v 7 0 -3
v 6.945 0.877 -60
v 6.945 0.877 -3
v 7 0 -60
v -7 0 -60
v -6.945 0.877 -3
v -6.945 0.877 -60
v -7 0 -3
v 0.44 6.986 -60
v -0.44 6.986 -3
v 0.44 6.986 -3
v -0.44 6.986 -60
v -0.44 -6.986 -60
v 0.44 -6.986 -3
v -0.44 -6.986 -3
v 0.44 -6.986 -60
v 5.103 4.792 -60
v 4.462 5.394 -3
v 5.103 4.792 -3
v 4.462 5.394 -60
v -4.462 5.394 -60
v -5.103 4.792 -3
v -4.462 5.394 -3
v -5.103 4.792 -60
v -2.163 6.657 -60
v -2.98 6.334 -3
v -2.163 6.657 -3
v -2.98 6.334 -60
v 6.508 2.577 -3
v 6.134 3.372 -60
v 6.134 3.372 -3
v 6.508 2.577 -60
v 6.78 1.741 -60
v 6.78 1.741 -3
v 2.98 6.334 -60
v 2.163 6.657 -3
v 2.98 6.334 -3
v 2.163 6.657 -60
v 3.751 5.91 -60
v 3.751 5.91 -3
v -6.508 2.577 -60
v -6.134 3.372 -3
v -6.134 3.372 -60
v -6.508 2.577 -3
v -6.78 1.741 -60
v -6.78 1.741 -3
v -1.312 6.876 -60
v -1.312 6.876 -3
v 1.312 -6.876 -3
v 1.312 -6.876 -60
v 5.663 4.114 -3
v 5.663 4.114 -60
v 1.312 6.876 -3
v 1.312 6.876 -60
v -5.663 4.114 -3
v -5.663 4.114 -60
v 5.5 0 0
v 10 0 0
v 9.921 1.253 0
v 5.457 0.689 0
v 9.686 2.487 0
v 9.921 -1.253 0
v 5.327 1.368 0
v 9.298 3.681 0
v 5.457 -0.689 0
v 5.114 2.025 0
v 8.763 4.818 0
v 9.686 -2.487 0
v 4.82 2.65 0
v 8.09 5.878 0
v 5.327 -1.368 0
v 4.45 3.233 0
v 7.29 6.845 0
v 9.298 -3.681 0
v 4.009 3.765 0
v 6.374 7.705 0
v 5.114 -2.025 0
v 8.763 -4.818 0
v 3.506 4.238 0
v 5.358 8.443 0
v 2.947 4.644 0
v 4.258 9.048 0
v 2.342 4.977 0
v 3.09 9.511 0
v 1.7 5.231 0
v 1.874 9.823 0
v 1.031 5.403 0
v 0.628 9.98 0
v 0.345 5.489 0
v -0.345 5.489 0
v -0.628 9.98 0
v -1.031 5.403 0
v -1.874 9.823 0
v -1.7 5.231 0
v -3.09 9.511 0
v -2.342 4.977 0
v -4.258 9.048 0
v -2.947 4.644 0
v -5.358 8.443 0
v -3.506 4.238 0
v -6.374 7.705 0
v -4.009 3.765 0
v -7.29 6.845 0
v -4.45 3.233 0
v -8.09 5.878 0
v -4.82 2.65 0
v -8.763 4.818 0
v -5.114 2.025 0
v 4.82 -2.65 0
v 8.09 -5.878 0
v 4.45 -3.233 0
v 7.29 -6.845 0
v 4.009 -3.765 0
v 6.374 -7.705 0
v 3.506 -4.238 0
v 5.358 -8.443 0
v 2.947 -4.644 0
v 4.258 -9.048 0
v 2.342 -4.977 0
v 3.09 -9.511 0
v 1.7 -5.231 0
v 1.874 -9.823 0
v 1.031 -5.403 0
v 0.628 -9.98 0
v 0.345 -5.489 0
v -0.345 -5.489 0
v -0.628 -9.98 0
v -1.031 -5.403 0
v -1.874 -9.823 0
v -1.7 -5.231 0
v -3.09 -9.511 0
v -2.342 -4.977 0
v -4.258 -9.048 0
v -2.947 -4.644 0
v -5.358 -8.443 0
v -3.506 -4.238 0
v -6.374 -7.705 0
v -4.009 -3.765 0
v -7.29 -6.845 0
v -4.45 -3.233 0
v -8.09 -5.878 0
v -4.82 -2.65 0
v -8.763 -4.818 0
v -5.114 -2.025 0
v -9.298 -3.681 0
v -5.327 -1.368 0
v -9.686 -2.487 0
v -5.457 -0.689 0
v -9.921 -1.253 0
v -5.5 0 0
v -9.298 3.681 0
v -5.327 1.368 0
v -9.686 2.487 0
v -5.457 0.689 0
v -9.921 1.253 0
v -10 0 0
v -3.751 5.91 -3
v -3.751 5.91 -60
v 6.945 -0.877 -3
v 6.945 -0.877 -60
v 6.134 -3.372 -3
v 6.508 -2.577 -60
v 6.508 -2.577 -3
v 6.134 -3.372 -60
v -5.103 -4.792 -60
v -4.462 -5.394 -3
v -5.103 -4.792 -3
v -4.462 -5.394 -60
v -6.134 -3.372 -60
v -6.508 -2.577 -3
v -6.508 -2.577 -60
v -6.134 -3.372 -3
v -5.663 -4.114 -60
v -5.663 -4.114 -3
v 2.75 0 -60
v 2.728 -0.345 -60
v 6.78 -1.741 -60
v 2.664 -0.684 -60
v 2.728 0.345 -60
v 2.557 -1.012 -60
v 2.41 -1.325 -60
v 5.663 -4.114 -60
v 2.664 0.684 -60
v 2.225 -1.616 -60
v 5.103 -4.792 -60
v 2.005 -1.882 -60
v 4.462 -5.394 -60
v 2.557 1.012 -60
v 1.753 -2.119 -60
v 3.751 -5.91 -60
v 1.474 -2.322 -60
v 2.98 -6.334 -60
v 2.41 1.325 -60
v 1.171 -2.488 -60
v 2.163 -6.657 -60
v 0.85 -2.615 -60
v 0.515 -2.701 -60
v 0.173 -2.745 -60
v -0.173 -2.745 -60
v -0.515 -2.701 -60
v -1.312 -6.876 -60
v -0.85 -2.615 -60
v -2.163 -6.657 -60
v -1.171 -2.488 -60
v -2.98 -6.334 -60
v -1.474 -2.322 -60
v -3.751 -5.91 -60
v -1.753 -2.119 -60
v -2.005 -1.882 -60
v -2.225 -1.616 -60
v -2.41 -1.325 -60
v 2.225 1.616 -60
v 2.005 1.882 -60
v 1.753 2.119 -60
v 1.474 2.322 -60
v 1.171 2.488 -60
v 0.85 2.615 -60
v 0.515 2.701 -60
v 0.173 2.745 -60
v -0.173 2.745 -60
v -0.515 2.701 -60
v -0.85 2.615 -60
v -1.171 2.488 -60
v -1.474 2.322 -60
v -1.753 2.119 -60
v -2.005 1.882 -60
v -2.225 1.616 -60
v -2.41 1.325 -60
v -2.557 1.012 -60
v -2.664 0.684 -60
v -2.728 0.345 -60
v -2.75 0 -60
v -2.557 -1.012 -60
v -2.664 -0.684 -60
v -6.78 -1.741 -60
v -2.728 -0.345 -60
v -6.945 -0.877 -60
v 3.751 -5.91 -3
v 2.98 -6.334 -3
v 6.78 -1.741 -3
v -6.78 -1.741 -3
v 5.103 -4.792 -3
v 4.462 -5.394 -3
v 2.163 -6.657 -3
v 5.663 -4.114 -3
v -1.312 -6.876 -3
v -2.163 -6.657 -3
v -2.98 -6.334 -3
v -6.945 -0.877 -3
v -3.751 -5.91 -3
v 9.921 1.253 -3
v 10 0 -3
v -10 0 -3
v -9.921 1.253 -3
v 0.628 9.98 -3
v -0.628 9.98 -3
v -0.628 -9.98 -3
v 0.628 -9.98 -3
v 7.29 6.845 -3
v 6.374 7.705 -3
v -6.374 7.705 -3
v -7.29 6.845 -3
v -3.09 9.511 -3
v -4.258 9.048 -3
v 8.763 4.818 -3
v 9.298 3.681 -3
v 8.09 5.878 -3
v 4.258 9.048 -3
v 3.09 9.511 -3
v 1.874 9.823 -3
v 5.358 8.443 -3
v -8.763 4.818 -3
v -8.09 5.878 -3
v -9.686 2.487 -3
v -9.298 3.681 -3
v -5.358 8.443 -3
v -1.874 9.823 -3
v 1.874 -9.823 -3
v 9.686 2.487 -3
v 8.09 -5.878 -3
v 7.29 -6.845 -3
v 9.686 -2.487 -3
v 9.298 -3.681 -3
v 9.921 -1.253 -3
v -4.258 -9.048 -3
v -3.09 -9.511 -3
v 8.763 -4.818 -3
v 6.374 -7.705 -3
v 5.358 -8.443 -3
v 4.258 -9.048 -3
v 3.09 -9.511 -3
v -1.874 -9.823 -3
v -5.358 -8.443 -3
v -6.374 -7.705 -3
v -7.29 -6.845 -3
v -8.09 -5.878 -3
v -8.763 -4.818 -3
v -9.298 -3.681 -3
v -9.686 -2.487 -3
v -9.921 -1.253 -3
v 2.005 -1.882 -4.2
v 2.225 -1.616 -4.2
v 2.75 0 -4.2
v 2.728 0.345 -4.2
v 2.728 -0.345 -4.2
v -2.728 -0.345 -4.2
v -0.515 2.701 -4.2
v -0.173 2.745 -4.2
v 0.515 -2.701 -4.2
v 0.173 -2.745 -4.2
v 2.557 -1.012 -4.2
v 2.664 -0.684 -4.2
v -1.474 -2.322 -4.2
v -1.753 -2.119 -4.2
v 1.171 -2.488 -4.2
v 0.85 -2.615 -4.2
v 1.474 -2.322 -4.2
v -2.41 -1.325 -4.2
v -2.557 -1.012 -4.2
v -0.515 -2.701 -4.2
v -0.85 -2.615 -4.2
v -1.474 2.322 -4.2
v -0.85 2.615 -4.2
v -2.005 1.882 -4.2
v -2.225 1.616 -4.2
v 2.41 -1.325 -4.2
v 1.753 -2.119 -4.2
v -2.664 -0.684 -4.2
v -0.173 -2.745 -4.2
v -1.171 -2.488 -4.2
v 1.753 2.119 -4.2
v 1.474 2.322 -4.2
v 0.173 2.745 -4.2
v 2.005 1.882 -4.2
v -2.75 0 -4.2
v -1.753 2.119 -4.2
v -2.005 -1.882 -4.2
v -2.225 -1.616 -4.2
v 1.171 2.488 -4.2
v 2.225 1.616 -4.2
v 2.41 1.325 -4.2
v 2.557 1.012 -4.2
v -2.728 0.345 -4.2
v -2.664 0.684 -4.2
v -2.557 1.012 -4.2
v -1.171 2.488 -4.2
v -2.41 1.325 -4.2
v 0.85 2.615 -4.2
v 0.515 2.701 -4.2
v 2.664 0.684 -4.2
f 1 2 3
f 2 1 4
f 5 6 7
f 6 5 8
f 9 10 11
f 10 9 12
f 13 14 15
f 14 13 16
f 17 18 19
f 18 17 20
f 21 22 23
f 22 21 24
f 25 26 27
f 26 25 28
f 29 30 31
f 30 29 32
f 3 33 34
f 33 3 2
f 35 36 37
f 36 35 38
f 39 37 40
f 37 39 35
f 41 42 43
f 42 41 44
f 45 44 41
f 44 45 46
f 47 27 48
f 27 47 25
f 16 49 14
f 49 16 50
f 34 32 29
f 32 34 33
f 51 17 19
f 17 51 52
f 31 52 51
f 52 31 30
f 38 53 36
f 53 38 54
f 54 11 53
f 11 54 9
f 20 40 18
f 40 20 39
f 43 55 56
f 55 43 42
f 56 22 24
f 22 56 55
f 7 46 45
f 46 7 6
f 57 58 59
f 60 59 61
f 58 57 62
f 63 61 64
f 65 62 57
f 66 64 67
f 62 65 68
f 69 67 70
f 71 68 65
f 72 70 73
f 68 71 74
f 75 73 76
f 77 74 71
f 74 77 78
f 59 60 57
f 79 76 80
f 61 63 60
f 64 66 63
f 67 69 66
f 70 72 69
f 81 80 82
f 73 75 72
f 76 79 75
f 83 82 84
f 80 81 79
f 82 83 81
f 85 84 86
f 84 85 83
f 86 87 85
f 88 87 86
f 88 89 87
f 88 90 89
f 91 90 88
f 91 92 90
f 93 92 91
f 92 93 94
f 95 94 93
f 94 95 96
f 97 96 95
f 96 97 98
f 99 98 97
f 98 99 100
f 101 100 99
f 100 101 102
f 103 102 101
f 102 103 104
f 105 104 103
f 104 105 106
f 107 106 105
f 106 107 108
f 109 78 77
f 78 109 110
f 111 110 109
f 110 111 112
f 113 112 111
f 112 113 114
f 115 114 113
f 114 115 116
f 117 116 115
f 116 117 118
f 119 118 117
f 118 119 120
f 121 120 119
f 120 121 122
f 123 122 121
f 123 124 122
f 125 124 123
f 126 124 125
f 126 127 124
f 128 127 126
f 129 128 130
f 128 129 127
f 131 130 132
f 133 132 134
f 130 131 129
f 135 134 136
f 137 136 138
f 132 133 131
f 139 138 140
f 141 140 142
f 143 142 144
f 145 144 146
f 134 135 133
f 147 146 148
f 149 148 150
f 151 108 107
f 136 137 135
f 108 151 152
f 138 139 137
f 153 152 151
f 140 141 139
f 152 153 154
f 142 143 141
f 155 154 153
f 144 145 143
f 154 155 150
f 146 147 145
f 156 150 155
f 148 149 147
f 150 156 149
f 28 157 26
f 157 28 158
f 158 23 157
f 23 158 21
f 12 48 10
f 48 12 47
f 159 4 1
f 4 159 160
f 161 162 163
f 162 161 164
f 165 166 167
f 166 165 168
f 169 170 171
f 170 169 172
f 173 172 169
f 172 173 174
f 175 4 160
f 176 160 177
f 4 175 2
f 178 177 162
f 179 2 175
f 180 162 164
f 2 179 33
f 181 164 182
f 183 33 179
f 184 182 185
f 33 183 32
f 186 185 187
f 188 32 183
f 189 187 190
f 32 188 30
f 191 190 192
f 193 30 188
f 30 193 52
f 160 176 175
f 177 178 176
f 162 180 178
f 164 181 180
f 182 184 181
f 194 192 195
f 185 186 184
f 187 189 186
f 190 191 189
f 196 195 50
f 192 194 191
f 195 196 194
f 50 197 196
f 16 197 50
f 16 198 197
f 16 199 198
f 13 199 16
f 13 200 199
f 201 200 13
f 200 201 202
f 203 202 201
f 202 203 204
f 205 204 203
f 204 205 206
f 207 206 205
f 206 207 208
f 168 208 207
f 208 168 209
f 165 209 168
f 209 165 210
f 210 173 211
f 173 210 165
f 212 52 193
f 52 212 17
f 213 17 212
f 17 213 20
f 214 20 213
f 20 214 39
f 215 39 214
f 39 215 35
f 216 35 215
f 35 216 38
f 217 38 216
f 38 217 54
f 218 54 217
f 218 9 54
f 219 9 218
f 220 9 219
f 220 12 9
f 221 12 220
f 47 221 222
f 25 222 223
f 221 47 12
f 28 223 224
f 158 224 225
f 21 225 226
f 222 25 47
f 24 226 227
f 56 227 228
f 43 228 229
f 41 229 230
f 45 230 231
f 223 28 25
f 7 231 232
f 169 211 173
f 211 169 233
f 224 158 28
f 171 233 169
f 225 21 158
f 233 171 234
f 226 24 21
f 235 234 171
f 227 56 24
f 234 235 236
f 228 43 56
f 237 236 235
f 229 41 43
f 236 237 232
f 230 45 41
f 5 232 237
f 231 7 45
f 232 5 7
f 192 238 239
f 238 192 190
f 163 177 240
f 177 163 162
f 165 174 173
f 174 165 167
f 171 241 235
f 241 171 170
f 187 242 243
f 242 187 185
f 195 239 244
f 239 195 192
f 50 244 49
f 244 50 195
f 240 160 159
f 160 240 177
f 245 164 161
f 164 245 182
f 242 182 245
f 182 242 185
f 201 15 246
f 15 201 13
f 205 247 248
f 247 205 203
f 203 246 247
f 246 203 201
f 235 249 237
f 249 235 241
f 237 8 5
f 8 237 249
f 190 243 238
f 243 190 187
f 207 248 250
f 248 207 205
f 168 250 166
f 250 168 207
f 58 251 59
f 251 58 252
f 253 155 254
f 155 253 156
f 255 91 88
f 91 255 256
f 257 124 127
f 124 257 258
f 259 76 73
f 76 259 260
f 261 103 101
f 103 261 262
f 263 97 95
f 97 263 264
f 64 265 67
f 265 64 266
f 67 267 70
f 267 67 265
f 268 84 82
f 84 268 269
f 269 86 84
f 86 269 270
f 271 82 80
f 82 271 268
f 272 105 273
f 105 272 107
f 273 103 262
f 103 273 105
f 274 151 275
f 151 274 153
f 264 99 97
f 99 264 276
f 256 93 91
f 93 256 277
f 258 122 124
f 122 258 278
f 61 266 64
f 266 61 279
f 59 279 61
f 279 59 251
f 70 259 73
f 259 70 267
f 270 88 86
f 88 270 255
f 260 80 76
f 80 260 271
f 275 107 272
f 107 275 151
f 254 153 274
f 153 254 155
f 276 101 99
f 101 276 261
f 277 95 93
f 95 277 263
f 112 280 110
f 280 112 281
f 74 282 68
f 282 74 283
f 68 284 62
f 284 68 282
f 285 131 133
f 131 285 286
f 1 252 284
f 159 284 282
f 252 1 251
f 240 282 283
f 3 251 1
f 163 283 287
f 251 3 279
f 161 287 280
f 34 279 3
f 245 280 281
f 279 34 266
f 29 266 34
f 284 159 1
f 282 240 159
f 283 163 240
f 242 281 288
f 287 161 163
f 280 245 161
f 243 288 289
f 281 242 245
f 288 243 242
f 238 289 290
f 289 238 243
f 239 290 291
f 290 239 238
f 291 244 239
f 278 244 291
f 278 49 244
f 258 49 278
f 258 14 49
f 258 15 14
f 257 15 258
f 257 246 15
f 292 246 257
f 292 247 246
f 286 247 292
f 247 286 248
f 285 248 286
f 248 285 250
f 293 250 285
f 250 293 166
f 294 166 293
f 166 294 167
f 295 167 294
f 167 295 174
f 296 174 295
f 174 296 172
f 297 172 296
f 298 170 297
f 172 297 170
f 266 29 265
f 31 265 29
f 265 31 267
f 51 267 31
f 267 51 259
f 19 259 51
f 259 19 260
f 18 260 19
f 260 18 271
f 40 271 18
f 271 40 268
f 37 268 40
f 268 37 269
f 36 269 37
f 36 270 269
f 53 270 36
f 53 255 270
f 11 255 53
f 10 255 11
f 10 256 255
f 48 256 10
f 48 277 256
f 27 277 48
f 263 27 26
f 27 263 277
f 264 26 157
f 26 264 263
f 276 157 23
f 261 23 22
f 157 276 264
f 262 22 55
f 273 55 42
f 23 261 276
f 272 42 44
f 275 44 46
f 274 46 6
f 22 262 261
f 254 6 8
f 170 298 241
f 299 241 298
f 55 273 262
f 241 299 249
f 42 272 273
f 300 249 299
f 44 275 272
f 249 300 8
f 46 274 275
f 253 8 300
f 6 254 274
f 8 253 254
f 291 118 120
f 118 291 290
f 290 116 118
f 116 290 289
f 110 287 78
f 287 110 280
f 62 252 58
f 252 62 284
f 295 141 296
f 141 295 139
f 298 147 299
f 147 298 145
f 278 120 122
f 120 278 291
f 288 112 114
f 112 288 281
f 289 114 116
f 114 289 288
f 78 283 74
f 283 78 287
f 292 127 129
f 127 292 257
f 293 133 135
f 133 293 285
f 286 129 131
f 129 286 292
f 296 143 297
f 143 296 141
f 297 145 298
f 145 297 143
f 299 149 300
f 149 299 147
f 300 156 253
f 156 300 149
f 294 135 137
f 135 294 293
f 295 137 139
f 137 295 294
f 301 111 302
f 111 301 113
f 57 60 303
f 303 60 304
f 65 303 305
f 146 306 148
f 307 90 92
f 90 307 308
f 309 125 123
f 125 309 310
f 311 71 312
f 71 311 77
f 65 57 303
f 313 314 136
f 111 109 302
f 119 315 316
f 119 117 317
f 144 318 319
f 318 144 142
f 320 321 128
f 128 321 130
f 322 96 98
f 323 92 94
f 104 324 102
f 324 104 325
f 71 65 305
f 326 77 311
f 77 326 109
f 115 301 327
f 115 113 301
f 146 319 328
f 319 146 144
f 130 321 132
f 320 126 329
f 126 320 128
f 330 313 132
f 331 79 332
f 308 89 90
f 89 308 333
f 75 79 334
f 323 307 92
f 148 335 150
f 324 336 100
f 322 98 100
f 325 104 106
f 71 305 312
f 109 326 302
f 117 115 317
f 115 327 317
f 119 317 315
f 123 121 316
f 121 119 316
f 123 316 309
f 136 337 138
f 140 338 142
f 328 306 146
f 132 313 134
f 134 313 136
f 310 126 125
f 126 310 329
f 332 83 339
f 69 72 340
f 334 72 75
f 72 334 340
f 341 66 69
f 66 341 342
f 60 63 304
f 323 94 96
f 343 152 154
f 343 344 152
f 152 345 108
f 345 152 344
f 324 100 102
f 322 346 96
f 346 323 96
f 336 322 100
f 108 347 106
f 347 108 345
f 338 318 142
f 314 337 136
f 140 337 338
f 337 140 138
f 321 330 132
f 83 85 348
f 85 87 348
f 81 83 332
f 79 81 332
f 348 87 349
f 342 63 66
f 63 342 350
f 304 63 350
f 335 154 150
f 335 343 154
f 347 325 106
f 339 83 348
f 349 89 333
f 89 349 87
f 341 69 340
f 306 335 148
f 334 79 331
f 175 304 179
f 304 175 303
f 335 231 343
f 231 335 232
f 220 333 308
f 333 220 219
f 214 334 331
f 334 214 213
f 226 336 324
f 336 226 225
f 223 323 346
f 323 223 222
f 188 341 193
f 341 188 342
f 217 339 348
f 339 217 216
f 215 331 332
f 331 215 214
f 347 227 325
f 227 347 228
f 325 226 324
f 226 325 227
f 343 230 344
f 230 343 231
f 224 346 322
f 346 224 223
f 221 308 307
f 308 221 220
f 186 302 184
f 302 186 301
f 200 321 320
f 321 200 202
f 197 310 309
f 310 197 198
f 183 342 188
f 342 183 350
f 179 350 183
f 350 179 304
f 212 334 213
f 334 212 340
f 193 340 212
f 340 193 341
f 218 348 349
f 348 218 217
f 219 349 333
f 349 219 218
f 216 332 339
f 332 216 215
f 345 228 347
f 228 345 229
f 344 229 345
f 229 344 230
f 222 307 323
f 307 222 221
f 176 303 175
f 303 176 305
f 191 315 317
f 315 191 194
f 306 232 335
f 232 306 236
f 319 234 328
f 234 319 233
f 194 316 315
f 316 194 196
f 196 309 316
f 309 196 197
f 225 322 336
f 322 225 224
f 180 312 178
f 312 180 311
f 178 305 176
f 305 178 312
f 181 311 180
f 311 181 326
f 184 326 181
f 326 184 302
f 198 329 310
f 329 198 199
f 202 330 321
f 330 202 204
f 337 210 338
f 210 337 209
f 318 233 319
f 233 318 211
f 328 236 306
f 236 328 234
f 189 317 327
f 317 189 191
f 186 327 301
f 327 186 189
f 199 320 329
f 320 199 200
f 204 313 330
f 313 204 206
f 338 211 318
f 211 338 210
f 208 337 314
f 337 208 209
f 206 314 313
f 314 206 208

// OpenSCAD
$fn = 50;


difference() {
	union() {
		translate(v = [0, 0, -60.0000000000]) {
			cylinder(h = 60, r = 7.0000000000);
		}
		translate(v = [0, 0, -3.0000000000]) {
			cylinder(h = 3, r = 10.0000000000);
		}
	}
	union() {
		translate(v = [0, 0, 0]) {
			rotate(a = [0, 0, 0]) {
				difference() {
					union() {
						#translate(v = [0, 0, -60.0000000000]) {
							cylinder(h = 60, r = 2.2500000000);
						}
						#translate(v = [0, 0, -4.2000000000]) {
							cylinder(h = 4.2000000000, r1 = 2.7500000000, r2 = 5.5000000000);
						}
						#translate(v = [0, 0, -60.0000000000]) {
							cylinder(h = 60, r = 2.7500000000);
						}
						#translate(v = [0, 0, -60.0000000000]) {
							cylinder(h = 60, r = 2.2500000000);
						}
					}
					union();
				}
			}
		}
	}
}
